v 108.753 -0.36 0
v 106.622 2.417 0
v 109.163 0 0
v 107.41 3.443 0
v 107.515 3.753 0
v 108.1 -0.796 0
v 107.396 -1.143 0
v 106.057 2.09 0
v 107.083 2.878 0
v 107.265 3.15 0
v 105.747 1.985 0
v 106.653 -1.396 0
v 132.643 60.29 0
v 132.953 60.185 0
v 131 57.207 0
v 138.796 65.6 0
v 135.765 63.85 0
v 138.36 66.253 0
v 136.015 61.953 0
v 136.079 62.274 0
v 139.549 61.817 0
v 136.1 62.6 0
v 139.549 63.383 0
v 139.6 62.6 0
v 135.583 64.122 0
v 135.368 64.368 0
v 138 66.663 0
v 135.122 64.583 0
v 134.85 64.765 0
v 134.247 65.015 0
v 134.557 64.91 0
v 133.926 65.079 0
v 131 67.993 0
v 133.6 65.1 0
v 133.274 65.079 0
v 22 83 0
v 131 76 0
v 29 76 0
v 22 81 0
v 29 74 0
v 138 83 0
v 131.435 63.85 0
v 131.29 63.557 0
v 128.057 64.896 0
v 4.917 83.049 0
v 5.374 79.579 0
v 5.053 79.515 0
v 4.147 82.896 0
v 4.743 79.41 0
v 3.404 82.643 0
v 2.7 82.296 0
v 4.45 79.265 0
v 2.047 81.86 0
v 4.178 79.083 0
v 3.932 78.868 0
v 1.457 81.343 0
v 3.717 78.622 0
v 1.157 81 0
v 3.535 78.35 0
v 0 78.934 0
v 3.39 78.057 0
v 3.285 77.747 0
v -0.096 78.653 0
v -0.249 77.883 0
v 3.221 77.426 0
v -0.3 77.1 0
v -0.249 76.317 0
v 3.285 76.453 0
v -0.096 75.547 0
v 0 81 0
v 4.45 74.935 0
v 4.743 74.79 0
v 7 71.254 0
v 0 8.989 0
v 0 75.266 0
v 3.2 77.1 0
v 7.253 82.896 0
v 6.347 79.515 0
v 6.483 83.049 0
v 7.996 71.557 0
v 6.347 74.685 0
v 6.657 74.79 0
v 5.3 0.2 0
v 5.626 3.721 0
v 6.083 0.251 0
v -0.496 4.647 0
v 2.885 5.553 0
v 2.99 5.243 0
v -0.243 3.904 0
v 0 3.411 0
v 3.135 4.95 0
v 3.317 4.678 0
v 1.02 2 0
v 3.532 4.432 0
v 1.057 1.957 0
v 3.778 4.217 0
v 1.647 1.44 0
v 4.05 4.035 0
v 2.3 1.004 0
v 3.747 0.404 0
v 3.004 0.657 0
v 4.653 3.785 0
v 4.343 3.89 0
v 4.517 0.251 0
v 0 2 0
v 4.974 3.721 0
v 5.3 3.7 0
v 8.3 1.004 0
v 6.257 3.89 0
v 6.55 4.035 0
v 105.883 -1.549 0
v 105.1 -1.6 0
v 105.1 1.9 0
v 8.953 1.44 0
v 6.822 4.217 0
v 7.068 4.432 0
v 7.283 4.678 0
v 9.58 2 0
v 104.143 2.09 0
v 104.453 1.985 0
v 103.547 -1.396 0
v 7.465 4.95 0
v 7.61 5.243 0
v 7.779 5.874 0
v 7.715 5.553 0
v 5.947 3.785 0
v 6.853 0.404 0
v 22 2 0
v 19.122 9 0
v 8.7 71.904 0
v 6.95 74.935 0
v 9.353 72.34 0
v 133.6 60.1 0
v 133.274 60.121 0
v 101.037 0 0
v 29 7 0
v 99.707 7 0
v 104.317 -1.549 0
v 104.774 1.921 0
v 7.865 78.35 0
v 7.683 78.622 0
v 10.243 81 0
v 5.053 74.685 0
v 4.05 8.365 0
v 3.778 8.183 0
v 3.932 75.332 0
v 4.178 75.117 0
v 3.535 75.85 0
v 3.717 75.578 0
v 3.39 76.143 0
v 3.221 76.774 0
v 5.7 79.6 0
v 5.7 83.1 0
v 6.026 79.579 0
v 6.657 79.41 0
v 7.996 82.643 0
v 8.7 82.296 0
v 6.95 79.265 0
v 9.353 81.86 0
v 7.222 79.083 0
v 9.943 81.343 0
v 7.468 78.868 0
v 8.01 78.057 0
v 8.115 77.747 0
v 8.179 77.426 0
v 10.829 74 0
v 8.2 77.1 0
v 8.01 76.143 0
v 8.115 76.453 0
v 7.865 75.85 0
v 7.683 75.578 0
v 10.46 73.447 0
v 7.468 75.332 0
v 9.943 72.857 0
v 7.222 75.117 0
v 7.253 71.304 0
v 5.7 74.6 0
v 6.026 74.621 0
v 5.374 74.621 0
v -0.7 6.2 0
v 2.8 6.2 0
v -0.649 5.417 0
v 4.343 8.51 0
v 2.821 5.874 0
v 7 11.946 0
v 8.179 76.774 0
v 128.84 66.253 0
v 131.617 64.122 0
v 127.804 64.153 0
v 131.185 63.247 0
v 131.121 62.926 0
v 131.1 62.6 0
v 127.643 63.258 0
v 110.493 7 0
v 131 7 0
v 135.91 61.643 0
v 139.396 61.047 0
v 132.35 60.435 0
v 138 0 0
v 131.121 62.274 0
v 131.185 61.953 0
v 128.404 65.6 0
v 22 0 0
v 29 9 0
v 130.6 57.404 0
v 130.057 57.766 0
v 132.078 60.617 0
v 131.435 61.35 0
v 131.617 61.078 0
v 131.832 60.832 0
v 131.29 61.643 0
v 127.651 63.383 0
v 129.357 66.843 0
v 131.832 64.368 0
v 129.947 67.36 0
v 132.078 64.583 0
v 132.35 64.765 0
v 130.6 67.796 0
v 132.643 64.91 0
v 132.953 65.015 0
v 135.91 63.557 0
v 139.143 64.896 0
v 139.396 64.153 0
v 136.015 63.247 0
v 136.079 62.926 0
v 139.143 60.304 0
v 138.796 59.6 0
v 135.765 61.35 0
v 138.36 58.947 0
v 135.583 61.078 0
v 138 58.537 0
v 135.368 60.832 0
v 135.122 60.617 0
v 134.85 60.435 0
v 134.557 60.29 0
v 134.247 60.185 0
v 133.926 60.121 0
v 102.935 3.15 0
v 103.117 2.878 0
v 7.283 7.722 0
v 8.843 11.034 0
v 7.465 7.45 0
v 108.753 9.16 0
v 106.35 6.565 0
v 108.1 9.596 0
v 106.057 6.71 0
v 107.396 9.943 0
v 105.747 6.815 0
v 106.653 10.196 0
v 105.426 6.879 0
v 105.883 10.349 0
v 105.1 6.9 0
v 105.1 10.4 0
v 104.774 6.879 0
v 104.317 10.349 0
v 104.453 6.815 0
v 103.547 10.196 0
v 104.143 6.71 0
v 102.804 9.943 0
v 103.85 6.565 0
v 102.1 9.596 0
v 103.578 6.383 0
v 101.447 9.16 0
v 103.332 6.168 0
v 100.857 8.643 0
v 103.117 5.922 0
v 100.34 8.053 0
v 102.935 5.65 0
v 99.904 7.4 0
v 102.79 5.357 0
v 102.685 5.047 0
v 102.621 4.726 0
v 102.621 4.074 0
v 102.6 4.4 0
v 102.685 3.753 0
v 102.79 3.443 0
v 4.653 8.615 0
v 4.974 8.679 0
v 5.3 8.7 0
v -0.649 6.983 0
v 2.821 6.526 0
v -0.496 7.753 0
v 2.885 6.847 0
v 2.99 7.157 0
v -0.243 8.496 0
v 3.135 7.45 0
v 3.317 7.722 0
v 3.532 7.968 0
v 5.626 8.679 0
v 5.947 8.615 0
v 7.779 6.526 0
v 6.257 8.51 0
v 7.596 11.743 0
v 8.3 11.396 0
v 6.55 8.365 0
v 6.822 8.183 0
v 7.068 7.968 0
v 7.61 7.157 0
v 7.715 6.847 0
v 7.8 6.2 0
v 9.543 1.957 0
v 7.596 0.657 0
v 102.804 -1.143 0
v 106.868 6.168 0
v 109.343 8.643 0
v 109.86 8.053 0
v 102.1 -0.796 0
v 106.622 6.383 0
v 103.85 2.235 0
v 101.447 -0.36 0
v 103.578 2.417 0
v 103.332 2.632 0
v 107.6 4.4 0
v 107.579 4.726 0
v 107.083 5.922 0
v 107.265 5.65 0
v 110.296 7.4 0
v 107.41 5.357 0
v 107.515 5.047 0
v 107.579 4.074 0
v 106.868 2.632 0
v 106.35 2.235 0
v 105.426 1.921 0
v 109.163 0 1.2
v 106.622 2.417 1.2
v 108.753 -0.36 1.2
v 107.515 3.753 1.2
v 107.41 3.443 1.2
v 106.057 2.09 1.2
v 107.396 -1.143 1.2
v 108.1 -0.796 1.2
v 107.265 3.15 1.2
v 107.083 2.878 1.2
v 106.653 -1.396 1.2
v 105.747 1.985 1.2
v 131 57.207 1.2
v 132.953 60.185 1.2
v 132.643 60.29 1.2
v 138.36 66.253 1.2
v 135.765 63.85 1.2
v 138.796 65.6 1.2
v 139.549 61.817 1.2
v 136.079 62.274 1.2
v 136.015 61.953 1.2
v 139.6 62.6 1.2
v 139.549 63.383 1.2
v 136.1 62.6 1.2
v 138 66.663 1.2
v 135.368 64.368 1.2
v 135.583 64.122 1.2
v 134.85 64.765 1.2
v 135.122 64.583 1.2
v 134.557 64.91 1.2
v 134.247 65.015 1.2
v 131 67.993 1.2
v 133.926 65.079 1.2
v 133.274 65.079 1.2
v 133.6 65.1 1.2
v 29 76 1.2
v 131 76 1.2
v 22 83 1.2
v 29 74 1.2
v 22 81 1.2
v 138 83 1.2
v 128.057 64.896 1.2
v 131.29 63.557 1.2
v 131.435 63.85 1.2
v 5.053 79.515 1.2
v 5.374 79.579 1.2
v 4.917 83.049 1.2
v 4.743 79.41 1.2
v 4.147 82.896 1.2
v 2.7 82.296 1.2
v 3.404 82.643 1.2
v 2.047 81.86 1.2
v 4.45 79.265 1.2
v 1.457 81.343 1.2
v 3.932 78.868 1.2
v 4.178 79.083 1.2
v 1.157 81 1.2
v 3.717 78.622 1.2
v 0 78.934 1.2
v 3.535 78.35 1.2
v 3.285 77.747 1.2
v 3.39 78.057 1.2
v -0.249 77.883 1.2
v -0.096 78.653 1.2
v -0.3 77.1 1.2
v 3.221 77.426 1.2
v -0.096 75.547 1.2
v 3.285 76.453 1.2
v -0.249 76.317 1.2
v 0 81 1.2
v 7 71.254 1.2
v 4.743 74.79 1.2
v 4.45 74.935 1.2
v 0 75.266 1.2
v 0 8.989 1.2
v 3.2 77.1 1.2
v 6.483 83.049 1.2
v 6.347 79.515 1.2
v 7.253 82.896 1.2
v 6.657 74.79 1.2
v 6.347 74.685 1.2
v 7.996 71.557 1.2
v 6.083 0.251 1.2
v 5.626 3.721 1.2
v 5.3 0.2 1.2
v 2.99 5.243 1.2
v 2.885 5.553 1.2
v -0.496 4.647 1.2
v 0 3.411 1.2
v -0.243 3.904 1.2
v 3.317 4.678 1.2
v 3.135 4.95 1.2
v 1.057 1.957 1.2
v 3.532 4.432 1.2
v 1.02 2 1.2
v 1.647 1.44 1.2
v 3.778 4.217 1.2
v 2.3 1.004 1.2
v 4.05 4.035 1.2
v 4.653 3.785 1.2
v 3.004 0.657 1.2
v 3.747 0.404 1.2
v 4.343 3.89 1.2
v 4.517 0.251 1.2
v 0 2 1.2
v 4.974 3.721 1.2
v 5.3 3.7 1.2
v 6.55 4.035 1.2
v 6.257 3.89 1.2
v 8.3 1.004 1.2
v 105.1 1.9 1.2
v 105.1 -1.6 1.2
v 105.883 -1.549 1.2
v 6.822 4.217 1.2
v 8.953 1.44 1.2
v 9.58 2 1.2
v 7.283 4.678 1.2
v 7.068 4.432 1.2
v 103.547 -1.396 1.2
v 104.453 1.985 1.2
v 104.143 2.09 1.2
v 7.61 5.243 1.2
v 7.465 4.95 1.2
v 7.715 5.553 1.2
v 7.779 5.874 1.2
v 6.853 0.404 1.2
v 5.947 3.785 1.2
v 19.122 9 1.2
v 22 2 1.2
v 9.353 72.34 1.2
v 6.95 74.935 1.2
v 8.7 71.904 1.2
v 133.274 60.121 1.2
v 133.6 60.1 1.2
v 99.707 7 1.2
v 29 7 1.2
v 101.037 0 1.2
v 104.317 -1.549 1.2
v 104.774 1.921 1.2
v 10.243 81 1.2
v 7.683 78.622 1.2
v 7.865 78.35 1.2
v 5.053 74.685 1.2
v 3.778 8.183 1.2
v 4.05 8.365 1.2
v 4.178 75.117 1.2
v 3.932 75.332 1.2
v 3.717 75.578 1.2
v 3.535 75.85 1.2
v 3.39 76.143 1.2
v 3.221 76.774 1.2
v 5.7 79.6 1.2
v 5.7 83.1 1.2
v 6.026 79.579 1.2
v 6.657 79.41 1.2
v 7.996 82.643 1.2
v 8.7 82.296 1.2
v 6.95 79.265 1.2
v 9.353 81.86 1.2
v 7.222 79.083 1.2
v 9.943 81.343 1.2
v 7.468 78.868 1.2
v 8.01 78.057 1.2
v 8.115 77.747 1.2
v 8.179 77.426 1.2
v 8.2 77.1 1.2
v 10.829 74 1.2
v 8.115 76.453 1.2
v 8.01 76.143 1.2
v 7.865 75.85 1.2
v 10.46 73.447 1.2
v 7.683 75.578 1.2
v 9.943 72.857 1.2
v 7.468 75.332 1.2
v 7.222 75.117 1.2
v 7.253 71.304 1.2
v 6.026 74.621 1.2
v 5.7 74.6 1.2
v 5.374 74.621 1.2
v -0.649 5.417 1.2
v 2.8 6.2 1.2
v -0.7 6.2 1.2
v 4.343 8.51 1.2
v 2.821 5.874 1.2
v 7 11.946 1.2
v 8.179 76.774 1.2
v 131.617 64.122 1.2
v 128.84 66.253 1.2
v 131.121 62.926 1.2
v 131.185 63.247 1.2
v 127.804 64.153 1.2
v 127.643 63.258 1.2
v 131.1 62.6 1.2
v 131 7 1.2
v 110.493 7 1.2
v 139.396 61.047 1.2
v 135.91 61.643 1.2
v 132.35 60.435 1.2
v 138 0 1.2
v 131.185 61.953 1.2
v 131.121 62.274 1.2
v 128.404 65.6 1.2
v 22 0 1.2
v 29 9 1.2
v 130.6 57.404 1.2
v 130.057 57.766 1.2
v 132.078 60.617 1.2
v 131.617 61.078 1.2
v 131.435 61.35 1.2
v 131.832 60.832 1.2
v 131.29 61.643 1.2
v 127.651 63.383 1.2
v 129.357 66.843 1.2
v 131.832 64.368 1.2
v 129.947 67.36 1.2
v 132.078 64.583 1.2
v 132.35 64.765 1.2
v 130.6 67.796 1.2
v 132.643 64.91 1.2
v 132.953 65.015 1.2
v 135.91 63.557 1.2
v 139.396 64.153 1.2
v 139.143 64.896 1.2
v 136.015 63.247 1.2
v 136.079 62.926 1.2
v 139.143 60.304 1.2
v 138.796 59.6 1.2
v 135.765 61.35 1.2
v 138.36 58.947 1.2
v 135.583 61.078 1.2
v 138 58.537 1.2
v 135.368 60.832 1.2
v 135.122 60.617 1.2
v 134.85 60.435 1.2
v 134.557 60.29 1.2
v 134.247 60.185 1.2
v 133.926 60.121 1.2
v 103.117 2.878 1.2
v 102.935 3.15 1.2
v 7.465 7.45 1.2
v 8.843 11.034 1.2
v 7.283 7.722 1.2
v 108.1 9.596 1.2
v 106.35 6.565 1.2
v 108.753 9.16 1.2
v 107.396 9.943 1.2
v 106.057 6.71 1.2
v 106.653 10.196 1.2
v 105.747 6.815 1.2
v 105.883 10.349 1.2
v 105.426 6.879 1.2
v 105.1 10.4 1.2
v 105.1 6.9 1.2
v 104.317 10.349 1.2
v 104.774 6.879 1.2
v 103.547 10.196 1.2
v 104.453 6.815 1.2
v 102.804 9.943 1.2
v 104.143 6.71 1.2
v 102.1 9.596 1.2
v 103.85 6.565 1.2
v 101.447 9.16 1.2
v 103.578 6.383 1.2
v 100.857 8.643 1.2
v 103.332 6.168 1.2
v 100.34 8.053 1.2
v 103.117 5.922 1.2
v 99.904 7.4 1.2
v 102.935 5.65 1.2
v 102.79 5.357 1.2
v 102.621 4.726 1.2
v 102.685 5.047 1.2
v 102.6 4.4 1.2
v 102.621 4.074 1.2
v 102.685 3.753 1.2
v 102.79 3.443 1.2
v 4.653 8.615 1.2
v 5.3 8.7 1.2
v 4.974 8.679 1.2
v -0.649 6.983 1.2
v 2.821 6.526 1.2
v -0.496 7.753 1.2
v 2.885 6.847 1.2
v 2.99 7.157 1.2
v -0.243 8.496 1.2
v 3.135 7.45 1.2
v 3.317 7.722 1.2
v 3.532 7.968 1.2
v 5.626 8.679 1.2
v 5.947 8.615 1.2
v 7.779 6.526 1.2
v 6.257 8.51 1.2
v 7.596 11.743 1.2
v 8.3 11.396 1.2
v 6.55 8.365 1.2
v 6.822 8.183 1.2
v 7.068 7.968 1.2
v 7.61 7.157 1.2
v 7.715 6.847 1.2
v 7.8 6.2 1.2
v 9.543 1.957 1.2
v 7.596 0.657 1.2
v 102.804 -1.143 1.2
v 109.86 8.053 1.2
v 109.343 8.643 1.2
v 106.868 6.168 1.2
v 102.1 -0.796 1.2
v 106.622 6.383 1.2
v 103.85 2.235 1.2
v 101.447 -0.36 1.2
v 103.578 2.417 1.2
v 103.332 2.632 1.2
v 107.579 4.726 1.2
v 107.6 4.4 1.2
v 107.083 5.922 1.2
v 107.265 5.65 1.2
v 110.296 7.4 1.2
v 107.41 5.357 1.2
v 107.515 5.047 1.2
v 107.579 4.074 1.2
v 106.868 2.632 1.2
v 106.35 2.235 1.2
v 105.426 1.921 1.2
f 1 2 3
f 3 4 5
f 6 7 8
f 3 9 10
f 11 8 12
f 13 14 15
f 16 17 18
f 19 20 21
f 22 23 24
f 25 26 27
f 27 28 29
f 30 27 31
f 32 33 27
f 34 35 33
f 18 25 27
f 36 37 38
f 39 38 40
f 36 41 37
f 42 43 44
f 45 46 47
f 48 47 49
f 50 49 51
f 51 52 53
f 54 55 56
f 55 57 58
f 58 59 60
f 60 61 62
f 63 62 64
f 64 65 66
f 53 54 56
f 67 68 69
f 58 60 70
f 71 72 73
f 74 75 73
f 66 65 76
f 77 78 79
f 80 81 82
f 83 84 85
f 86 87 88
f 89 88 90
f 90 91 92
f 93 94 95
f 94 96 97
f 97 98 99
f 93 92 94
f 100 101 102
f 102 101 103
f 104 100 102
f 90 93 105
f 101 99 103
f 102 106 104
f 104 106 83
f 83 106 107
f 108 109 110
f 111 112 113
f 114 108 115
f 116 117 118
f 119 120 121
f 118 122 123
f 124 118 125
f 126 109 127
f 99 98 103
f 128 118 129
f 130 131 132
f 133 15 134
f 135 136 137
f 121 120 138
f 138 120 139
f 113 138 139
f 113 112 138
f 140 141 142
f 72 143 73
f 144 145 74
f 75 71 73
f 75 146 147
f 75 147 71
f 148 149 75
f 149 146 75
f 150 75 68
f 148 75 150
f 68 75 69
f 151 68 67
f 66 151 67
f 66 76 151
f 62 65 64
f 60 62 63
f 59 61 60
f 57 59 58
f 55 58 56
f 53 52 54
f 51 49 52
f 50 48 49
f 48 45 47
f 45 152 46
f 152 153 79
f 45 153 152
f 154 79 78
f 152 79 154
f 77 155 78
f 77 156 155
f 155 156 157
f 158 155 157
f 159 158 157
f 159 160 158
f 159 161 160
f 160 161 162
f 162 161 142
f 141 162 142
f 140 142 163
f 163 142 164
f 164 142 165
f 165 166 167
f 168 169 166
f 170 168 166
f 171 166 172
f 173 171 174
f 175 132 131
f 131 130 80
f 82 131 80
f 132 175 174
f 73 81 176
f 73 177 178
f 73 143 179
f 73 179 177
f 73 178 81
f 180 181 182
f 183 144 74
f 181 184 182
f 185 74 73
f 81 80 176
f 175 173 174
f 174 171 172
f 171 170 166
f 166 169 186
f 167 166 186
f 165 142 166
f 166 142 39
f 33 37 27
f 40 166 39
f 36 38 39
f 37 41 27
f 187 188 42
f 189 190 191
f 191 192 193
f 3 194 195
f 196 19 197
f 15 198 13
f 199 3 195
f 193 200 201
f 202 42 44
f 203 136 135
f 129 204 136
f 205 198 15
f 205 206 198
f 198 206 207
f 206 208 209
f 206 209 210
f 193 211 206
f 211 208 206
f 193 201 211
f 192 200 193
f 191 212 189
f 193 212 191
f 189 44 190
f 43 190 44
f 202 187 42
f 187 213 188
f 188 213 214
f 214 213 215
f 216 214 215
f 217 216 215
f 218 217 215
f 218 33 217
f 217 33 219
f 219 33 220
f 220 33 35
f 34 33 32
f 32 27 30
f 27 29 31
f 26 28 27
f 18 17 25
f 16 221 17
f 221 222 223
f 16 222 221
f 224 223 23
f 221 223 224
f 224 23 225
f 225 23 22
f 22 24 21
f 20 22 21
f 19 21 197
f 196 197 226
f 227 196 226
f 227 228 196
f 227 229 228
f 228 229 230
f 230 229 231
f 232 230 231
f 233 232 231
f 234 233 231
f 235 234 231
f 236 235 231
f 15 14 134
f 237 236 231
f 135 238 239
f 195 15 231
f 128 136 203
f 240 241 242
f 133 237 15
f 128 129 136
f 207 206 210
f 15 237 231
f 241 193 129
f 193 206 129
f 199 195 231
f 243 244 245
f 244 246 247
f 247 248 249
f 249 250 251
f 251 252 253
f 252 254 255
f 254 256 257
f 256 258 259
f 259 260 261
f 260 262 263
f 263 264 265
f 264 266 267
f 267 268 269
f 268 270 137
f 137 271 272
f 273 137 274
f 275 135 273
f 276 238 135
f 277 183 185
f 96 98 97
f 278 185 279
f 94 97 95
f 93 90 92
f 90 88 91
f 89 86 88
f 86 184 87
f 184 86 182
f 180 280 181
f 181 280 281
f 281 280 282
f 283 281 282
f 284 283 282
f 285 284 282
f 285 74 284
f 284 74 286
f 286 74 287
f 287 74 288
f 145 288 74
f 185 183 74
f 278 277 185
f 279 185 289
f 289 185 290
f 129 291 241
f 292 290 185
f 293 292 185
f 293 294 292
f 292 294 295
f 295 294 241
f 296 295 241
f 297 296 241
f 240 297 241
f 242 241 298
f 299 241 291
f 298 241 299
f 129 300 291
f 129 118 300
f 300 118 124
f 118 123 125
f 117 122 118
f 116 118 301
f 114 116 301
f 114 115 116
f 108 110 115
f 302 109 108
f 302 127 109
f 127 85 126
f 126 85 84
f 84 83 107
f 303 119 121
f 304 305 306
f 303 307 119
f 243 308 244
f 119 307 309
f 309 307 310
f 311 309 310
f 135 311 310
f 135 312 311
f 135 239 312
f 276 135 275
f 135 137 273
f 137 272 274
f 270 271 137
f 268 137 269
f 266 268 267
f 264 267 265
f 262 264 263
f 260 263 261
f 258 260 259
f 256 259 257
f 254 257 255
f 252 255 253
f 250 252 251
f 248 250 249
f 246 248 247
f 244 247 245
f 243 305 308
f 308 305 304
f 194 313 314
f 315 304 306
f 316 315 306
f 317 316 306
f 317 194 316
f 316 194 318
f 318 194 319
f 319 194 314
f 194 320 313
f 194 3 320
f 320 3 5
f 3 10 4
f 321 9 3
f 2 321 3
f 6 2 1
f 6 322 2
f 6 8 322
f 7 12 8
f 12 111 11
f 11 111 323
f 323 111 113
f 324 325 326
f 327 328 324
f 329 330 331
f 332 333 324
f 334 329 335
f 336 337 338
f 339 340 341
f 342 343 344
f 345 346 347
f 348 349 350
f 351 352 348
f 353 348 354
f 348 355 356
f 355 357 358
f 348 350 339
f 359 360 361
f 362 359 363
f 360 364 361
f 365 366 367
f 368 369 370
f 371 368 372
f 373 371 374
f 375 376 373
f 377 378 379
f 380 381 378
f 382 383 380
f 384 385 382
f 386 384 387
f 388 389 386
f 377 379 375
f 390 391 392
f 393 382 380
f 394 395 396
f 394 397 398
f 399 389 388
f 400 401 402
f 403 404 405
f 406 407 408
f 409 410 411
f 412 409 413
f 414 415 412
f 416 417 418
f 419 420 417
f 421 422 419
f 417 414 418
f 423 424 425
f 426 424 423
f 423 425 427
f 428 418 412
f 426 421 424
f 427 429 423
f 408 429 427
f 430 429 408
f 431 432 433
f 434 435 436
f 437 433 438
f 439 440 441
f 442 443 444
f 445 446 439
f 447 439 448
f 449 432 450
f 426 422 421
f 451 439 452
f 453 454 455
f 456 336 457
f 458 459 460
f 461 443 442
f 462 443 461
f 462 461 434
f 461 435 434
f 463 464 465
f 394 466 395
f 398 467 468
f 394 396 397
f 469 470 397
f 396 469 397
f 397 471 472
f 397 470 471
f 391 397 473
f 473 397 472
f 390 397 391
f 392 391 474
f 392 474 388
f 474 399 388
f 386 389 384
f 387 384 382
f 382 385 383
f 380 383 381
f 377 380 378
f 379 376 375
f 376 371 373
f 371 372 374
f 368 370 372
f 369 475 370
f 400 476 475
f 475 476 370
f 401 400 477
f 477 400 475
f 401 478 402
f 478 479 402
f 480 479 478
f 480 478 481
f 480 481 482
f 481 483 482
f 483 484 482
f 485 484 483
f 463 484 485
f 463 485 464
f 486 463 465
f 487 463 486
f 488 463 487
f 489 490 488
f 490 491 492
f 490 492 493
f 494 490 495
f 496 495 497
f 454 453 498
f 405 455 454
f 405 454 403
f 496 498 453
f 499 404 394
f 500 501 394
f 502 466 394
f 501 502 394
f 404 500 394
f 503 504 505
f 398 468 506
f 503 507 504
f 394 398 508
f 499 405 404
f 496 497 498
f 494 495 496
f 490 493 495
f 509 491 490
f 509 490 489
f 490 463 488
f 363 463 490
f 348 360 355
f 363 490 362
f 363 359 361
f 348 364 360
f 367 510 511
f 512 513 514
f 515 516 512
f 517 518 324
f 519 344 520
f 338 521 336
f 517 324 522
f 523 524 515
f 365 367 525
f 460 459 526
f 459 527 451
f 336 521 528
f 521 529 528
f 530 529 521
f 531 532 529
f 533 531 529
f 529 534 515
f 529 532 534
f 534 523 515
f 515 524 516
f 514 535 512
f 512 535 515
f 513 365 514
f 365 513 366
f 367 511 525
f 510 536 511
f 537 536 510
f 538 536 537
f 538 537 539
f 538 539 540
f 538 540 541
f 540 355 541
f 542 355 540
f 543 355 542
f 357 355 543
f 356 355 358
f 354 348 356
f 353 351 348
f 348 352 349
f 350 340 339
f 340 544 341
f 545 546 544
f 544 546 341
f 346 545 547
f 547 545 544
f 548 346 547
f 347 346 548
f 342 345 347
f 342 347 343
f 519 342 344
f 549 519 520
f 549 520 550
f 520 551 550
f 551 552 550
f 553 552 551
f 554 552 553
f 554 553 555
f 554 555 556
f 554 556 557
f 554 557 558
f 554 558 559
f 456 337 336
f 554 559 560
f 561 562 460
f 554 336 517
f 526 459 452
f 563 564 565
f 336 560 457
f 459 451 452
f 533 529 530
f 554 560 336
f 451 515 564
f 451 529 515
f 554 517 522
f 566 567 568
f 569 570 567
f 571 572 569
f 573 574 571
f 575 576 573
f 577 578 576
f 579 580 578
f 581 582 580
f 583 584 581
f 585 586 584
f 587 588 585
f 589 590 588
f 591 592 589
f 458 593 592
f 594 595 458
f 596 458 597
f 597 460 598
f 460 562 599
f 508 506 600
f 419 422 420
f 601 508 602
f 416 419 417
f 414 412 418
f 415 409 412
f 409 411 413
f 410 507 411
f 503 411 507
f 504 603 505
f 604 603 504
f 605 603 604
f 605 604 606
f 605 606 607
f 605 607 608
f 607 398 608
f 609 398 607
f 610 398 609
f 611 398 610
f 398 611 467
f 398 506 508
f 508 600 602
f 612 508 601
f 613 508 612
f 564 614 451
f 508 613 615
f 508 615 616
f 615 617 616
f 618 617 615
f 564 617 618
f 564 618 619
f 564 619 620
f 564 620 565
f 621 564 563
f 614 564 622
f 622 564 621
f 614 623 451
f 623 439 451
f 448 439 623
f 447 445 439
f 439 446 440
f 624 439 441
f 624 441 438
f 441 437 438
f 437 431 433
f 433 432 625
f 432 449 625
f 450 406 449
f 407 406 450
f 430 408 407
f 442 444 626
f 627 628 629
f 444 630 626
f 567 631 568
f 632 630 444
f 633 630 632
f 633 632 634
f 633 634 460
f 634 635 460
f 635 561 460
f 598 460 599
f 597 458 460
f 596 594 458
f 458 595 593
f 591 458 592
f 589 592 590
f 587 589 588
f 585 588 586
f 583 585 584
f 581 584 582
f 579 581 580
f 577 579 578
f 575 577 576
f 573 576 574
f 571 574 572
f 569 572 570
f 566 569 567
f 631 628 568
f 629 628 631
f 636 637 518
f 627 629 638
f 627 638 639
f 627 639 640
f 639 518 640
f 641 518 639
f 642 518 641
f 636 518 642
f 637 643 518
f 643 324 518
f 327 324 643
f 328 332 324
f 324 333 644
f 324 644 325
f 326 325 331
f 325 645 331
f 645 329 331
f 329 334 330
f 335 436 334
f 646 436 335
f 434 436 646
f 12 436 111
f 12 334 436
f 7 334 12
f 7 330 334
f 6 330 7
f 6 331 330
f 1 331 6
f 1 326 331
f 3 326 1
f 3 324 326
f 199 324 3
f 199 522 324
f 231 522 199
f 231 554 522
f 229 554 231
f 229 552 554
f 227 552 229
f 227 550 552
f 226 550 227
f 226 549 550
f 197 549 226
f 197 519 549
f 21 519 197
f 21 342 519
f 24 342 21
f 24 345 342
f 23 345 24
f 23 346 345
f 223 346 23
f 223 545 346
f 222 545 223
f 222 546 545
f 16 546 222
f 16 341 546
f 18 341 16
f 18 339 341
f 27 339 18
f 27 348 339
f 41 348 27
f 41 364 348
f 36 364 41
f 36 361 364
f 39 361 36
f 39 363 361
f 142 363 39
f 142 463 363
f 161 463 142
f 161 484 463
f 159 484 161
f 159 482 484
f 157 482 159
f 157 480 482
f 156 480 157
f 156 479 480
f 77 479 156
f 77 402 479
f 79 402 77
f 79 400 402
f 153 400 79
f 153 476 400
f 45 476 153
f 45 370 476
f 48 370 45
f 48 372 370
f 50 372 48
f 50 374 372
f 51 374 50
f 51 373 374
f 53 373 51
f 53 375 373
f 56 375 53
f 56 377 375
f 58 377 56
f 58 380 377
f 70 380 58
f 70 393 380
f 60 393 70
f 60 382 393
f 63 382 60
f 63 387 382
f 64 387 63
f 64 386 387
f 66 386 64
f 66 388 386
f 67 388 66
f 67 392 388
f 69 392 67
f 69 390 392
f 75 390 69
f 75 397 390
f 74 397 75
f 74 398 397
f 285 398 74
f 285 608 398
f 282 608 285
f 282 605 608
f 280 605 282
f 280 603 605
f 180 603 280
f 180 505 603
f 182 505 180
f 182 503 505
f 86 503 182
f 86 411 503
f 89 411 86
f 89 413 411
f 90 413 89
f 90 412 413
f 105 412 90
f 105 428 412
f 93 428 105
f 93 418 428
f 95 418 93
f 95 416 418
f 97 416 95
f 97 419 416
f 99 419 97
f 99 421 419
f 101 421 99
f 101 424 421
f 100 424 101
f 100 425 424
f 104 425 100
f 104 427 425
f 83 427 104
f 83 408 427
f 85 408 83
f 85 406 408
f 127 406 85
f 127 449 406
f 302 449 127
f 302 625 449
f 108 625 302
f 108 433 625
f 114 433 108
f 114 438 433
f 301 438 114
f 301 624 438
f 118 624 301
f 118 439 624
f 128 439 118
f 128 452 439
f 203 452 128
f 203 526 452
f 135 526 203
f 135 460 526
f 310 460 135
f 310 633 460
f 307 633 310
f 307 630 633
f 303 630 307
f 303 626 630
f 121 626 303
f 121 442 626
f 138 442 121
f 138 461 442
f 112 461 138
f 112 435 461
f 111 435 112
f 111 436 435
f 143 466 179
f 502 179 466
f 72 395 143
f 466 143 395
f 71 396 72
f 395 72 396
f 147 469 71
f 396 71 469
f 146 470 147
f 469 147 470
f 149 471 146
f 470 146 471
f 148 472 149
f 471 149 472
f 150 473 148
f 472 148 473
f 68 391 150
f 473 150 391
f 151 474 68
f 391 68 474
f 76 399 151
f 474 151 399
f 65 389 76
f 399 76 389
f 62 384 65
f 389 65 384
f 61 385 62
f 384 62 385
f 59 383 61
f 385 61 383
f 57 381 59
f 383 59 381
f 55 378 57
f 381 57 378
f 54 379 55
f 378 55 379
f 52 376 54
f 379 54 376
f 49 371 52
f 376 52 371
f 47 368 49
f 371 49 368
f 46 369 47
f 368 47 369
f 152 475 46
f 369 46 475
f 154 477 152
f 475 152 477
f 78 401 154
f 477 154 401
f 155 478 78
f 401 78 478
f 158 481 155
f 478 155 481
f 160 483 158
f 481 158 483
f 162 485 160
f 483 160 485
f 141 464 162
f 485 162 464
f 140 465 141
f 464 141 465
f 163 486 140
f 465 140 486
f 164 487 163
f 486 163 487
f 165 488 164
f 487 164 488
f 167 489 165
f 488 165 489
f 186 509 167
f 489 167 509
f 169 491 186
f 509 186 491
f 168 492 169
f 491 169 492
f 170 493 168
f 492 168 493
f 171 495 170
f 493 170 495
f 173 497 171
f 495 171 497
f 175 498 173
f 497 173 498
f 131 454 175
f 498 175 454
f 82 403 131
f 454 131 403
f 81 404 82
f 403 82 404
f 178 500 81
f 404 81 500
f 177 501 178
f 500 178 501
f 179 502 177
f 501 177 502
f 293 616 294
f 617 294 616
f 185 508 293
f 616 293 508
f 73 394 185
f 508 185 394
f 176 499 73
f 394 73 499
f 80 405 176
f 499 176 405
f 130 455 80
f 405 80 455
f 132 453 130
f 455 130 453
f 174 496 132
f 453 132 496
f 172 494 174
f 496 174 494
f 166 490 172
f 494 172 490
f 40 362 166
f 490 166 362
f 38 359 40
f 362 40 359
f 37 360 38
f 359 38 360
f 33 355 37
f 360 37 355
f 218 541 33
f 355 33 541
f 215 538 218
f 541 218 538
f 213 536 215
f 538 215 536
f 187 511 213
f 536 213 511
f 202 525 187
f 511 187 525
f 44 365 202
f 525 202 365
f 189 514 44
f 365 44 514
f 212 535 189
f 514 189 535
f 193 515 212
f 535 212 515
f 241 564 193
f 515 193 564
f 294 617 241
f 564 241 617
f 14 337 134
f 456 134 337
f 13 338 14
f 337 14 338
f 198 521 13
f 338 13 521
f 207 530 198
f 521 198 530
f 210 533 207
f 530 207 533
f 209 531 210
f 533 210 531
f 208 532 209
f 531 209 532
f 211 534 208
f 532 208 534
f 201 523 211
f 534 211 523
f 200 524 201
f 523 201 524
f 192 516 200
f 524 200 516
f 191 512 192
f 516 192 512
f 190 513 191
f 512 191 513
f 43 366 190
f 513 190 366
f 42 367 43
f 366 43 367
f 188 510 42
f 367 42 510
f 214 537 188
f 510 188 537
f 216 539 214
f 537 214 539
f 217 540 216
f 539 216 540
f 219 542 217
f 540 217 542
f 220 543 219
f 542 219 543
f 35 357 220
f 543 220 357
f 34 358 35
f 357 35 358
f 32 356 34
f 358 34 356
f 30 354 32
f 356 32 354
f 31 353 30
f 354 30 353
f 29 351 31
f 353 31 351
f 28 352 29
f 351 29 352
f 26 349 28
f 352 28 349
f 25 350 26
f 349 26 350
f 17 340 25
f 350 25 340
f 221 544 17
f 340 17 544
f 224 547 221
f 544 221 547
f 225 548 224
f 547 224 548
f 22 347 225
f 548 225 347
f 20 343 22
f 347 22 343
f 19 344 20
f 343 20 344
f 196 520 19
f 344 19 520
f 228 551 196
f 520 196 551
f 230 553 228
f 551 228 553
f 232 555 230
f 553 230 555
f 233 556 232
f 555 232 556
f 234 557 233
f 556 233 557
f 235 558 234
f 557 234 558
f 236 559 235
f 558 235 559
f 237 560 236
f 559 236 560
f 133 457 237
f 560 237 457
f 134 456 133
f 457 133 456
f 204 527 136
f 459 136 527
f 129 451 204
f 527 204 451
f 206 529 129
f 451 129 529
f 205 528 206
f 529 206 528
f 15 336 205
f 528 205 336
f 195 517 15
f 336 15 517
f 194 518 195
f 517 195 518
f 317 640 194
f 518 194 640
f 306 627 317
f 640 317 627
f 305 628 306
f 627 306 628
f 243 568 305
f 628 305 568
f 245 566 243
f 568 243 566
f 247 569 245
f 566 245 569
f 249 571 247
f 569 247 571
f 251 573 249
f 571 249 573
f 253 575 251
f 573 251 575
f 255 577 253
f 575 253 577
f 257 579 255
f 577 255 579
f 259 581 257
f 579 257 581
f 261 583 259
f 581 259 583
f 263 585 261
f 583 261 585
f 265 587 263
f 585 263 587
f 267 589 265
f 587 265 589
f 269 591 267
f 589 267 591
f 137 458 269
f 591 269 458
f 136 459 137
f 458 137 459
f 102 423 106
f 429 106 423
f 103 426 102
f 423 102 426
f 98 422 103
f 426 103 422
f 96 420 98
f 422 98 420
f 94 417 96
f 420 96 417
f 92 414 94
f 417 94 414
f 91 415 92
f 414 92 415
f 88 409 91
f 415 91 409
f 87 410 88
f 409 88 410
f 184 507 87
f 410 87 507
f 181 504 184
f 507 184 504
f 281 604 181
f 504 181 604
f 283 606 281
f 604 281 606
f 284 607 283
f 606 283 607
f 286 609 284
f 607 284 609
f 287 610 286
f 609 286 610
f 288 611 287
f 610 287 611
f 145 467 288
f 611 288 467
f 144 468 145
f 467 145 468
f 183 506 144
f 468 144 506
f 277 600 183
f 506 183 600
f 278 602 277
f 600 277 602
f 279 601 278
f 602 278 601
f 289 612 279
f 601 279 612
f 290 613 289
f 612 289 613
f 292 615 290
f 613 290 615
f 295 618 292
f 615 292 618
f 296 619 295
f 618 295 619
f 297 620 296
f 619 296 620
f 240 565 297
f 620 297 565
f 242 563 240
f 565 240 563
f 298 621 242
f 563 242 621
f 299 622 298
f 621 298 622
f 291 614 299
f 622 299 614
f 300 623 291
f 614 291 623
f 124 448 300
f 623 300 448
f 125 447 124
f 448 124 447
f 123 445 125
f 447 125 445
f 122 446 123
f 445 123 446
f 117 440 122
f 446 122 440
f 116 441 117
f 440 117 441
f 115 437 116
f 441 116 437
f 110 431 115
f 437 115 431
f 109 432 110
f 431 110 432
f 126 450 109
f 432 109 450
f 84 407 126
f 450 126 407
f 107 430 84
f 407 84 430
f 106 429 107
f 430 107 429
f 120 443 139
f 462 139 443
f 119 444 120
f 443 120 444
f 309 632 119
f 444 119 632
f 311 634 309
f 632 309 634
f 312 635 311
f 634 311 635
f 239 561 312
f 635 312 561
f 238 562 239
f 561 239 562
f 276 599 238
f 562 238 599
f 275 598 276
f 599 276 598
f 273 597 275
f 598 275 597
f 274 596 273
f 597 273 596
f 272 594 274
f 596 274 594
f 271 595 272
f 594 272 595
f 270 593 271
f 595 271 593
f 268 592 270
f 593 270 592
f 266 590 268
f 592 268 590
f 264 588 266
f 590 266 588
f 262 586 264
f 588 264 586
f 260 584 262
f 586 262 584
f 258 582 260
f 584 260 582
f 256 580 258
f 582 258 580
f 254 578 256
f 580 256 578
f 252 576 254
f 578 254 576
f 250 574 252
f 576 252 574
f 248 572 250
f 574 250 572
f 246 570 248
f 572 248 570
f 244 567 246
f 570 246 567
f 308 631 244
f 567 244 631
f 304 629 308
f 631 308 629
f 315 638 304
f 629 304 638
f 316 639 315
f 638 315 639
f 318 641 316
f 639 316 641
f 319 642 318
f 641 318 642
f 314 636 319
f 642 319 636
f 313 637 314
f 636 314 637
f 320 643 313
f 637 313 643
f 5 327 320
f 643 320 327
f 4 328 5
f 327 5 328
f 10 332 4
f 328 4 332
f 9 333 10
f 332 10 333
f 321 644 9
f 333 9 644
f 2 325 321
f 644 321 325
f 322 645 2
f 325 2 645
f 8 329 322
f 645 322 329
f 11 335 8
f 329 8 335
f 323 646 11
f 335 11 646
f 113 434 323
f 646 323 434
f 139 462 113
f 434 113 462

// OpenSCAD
// Fit template for the Blue&Me case (50521871): the old board's outline and its
// four 5 mm holes, as a thin frame. Print it, drop it onto the four 27 mm bosses
// in the connector half: every boss tip must pass through its hole. If one does
// not, measure how far off it is and correct `holes` below.
//
// Frame: the old board seen from its solder side (the side that faced the lid),
// connector end on the left, origin at the board's bottom-left corner.
// Board: 138 x 83 mm (owner's calipers: 22 + 116 along the long edge, 79 at the
// connector end, 83 at the far end). Holes: fitted to the owner's six caliper
// distances between bosses (sides 71 / 100 / 65 / 129 mm, diagonals H1-H4 123 and
// H2-H3 140 mm; all met within 0.2 mm), the photo only choosing among the fits.
// Turned 1.0 deg anticlockwise (seen from the lid side) about the board centre on
// 2026-09-28: the first print fitted the bosses but sat ~1 deg anticlockwise in
// the case, and the old board's own edges showed the same 1.0 deg against its holes.

board = [138, 83];
step = [22, 2];          // connector end: 79 mm, not 83, over its first 22 mm (2 mm off each long edge)
hole_d = 5;              // old board's holes
holes = [                // [x, y] from the bottom-left corner
    [5.7, 77.1],         // H1  connector end
    [5.3, 6.2],          // H2  connector end
    [133.6, 62.6],       // H3  far end, on the edge
    [105.1, 4.4],        // H4  far end, 29 mm in from the edge
];
t = 1.2;                 // plate thickness
rim = 7;                 // frame width
ring_d = 12;

$fn = 48;

module outline() {
    difference() {
        square(board);
        square(step);
        translate([0, board[1] - step[1]]) square(step);
    }
}

module frame() {
    difference() {
        outline();
        offset(delta = -rim) outline();
    }
}

linear_extrude(t) difference() {
    union() {
        frame();
        for (h = holes) translate(h) circle(d = ring_d);
        // one diagonal brace so the frame stays flat
        hull() { translate(holes[1]) circle(d = 6); translate(holes[2]) circle(d = 6); }
    }
    for (h = holes) translate(h) circle(d = hole_d);
}
